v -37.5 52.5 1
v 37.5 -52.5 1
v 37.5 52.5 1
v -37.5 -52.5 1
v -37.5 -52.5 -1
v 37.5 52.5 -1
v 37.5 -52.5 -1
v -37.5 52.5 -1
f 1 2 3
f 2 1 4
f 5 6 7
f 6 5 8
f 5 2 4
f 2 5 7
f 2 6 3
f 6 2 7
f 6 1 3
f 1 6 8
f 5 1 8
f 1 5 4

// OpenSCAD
// ========================================
// a 75 x 105 x 2 mm plate
// NeuroCAD canonical IR; dimensions are millimetres
// ========================================
$fn = 48;

cube(size=[75, 105, 2], center=true);
